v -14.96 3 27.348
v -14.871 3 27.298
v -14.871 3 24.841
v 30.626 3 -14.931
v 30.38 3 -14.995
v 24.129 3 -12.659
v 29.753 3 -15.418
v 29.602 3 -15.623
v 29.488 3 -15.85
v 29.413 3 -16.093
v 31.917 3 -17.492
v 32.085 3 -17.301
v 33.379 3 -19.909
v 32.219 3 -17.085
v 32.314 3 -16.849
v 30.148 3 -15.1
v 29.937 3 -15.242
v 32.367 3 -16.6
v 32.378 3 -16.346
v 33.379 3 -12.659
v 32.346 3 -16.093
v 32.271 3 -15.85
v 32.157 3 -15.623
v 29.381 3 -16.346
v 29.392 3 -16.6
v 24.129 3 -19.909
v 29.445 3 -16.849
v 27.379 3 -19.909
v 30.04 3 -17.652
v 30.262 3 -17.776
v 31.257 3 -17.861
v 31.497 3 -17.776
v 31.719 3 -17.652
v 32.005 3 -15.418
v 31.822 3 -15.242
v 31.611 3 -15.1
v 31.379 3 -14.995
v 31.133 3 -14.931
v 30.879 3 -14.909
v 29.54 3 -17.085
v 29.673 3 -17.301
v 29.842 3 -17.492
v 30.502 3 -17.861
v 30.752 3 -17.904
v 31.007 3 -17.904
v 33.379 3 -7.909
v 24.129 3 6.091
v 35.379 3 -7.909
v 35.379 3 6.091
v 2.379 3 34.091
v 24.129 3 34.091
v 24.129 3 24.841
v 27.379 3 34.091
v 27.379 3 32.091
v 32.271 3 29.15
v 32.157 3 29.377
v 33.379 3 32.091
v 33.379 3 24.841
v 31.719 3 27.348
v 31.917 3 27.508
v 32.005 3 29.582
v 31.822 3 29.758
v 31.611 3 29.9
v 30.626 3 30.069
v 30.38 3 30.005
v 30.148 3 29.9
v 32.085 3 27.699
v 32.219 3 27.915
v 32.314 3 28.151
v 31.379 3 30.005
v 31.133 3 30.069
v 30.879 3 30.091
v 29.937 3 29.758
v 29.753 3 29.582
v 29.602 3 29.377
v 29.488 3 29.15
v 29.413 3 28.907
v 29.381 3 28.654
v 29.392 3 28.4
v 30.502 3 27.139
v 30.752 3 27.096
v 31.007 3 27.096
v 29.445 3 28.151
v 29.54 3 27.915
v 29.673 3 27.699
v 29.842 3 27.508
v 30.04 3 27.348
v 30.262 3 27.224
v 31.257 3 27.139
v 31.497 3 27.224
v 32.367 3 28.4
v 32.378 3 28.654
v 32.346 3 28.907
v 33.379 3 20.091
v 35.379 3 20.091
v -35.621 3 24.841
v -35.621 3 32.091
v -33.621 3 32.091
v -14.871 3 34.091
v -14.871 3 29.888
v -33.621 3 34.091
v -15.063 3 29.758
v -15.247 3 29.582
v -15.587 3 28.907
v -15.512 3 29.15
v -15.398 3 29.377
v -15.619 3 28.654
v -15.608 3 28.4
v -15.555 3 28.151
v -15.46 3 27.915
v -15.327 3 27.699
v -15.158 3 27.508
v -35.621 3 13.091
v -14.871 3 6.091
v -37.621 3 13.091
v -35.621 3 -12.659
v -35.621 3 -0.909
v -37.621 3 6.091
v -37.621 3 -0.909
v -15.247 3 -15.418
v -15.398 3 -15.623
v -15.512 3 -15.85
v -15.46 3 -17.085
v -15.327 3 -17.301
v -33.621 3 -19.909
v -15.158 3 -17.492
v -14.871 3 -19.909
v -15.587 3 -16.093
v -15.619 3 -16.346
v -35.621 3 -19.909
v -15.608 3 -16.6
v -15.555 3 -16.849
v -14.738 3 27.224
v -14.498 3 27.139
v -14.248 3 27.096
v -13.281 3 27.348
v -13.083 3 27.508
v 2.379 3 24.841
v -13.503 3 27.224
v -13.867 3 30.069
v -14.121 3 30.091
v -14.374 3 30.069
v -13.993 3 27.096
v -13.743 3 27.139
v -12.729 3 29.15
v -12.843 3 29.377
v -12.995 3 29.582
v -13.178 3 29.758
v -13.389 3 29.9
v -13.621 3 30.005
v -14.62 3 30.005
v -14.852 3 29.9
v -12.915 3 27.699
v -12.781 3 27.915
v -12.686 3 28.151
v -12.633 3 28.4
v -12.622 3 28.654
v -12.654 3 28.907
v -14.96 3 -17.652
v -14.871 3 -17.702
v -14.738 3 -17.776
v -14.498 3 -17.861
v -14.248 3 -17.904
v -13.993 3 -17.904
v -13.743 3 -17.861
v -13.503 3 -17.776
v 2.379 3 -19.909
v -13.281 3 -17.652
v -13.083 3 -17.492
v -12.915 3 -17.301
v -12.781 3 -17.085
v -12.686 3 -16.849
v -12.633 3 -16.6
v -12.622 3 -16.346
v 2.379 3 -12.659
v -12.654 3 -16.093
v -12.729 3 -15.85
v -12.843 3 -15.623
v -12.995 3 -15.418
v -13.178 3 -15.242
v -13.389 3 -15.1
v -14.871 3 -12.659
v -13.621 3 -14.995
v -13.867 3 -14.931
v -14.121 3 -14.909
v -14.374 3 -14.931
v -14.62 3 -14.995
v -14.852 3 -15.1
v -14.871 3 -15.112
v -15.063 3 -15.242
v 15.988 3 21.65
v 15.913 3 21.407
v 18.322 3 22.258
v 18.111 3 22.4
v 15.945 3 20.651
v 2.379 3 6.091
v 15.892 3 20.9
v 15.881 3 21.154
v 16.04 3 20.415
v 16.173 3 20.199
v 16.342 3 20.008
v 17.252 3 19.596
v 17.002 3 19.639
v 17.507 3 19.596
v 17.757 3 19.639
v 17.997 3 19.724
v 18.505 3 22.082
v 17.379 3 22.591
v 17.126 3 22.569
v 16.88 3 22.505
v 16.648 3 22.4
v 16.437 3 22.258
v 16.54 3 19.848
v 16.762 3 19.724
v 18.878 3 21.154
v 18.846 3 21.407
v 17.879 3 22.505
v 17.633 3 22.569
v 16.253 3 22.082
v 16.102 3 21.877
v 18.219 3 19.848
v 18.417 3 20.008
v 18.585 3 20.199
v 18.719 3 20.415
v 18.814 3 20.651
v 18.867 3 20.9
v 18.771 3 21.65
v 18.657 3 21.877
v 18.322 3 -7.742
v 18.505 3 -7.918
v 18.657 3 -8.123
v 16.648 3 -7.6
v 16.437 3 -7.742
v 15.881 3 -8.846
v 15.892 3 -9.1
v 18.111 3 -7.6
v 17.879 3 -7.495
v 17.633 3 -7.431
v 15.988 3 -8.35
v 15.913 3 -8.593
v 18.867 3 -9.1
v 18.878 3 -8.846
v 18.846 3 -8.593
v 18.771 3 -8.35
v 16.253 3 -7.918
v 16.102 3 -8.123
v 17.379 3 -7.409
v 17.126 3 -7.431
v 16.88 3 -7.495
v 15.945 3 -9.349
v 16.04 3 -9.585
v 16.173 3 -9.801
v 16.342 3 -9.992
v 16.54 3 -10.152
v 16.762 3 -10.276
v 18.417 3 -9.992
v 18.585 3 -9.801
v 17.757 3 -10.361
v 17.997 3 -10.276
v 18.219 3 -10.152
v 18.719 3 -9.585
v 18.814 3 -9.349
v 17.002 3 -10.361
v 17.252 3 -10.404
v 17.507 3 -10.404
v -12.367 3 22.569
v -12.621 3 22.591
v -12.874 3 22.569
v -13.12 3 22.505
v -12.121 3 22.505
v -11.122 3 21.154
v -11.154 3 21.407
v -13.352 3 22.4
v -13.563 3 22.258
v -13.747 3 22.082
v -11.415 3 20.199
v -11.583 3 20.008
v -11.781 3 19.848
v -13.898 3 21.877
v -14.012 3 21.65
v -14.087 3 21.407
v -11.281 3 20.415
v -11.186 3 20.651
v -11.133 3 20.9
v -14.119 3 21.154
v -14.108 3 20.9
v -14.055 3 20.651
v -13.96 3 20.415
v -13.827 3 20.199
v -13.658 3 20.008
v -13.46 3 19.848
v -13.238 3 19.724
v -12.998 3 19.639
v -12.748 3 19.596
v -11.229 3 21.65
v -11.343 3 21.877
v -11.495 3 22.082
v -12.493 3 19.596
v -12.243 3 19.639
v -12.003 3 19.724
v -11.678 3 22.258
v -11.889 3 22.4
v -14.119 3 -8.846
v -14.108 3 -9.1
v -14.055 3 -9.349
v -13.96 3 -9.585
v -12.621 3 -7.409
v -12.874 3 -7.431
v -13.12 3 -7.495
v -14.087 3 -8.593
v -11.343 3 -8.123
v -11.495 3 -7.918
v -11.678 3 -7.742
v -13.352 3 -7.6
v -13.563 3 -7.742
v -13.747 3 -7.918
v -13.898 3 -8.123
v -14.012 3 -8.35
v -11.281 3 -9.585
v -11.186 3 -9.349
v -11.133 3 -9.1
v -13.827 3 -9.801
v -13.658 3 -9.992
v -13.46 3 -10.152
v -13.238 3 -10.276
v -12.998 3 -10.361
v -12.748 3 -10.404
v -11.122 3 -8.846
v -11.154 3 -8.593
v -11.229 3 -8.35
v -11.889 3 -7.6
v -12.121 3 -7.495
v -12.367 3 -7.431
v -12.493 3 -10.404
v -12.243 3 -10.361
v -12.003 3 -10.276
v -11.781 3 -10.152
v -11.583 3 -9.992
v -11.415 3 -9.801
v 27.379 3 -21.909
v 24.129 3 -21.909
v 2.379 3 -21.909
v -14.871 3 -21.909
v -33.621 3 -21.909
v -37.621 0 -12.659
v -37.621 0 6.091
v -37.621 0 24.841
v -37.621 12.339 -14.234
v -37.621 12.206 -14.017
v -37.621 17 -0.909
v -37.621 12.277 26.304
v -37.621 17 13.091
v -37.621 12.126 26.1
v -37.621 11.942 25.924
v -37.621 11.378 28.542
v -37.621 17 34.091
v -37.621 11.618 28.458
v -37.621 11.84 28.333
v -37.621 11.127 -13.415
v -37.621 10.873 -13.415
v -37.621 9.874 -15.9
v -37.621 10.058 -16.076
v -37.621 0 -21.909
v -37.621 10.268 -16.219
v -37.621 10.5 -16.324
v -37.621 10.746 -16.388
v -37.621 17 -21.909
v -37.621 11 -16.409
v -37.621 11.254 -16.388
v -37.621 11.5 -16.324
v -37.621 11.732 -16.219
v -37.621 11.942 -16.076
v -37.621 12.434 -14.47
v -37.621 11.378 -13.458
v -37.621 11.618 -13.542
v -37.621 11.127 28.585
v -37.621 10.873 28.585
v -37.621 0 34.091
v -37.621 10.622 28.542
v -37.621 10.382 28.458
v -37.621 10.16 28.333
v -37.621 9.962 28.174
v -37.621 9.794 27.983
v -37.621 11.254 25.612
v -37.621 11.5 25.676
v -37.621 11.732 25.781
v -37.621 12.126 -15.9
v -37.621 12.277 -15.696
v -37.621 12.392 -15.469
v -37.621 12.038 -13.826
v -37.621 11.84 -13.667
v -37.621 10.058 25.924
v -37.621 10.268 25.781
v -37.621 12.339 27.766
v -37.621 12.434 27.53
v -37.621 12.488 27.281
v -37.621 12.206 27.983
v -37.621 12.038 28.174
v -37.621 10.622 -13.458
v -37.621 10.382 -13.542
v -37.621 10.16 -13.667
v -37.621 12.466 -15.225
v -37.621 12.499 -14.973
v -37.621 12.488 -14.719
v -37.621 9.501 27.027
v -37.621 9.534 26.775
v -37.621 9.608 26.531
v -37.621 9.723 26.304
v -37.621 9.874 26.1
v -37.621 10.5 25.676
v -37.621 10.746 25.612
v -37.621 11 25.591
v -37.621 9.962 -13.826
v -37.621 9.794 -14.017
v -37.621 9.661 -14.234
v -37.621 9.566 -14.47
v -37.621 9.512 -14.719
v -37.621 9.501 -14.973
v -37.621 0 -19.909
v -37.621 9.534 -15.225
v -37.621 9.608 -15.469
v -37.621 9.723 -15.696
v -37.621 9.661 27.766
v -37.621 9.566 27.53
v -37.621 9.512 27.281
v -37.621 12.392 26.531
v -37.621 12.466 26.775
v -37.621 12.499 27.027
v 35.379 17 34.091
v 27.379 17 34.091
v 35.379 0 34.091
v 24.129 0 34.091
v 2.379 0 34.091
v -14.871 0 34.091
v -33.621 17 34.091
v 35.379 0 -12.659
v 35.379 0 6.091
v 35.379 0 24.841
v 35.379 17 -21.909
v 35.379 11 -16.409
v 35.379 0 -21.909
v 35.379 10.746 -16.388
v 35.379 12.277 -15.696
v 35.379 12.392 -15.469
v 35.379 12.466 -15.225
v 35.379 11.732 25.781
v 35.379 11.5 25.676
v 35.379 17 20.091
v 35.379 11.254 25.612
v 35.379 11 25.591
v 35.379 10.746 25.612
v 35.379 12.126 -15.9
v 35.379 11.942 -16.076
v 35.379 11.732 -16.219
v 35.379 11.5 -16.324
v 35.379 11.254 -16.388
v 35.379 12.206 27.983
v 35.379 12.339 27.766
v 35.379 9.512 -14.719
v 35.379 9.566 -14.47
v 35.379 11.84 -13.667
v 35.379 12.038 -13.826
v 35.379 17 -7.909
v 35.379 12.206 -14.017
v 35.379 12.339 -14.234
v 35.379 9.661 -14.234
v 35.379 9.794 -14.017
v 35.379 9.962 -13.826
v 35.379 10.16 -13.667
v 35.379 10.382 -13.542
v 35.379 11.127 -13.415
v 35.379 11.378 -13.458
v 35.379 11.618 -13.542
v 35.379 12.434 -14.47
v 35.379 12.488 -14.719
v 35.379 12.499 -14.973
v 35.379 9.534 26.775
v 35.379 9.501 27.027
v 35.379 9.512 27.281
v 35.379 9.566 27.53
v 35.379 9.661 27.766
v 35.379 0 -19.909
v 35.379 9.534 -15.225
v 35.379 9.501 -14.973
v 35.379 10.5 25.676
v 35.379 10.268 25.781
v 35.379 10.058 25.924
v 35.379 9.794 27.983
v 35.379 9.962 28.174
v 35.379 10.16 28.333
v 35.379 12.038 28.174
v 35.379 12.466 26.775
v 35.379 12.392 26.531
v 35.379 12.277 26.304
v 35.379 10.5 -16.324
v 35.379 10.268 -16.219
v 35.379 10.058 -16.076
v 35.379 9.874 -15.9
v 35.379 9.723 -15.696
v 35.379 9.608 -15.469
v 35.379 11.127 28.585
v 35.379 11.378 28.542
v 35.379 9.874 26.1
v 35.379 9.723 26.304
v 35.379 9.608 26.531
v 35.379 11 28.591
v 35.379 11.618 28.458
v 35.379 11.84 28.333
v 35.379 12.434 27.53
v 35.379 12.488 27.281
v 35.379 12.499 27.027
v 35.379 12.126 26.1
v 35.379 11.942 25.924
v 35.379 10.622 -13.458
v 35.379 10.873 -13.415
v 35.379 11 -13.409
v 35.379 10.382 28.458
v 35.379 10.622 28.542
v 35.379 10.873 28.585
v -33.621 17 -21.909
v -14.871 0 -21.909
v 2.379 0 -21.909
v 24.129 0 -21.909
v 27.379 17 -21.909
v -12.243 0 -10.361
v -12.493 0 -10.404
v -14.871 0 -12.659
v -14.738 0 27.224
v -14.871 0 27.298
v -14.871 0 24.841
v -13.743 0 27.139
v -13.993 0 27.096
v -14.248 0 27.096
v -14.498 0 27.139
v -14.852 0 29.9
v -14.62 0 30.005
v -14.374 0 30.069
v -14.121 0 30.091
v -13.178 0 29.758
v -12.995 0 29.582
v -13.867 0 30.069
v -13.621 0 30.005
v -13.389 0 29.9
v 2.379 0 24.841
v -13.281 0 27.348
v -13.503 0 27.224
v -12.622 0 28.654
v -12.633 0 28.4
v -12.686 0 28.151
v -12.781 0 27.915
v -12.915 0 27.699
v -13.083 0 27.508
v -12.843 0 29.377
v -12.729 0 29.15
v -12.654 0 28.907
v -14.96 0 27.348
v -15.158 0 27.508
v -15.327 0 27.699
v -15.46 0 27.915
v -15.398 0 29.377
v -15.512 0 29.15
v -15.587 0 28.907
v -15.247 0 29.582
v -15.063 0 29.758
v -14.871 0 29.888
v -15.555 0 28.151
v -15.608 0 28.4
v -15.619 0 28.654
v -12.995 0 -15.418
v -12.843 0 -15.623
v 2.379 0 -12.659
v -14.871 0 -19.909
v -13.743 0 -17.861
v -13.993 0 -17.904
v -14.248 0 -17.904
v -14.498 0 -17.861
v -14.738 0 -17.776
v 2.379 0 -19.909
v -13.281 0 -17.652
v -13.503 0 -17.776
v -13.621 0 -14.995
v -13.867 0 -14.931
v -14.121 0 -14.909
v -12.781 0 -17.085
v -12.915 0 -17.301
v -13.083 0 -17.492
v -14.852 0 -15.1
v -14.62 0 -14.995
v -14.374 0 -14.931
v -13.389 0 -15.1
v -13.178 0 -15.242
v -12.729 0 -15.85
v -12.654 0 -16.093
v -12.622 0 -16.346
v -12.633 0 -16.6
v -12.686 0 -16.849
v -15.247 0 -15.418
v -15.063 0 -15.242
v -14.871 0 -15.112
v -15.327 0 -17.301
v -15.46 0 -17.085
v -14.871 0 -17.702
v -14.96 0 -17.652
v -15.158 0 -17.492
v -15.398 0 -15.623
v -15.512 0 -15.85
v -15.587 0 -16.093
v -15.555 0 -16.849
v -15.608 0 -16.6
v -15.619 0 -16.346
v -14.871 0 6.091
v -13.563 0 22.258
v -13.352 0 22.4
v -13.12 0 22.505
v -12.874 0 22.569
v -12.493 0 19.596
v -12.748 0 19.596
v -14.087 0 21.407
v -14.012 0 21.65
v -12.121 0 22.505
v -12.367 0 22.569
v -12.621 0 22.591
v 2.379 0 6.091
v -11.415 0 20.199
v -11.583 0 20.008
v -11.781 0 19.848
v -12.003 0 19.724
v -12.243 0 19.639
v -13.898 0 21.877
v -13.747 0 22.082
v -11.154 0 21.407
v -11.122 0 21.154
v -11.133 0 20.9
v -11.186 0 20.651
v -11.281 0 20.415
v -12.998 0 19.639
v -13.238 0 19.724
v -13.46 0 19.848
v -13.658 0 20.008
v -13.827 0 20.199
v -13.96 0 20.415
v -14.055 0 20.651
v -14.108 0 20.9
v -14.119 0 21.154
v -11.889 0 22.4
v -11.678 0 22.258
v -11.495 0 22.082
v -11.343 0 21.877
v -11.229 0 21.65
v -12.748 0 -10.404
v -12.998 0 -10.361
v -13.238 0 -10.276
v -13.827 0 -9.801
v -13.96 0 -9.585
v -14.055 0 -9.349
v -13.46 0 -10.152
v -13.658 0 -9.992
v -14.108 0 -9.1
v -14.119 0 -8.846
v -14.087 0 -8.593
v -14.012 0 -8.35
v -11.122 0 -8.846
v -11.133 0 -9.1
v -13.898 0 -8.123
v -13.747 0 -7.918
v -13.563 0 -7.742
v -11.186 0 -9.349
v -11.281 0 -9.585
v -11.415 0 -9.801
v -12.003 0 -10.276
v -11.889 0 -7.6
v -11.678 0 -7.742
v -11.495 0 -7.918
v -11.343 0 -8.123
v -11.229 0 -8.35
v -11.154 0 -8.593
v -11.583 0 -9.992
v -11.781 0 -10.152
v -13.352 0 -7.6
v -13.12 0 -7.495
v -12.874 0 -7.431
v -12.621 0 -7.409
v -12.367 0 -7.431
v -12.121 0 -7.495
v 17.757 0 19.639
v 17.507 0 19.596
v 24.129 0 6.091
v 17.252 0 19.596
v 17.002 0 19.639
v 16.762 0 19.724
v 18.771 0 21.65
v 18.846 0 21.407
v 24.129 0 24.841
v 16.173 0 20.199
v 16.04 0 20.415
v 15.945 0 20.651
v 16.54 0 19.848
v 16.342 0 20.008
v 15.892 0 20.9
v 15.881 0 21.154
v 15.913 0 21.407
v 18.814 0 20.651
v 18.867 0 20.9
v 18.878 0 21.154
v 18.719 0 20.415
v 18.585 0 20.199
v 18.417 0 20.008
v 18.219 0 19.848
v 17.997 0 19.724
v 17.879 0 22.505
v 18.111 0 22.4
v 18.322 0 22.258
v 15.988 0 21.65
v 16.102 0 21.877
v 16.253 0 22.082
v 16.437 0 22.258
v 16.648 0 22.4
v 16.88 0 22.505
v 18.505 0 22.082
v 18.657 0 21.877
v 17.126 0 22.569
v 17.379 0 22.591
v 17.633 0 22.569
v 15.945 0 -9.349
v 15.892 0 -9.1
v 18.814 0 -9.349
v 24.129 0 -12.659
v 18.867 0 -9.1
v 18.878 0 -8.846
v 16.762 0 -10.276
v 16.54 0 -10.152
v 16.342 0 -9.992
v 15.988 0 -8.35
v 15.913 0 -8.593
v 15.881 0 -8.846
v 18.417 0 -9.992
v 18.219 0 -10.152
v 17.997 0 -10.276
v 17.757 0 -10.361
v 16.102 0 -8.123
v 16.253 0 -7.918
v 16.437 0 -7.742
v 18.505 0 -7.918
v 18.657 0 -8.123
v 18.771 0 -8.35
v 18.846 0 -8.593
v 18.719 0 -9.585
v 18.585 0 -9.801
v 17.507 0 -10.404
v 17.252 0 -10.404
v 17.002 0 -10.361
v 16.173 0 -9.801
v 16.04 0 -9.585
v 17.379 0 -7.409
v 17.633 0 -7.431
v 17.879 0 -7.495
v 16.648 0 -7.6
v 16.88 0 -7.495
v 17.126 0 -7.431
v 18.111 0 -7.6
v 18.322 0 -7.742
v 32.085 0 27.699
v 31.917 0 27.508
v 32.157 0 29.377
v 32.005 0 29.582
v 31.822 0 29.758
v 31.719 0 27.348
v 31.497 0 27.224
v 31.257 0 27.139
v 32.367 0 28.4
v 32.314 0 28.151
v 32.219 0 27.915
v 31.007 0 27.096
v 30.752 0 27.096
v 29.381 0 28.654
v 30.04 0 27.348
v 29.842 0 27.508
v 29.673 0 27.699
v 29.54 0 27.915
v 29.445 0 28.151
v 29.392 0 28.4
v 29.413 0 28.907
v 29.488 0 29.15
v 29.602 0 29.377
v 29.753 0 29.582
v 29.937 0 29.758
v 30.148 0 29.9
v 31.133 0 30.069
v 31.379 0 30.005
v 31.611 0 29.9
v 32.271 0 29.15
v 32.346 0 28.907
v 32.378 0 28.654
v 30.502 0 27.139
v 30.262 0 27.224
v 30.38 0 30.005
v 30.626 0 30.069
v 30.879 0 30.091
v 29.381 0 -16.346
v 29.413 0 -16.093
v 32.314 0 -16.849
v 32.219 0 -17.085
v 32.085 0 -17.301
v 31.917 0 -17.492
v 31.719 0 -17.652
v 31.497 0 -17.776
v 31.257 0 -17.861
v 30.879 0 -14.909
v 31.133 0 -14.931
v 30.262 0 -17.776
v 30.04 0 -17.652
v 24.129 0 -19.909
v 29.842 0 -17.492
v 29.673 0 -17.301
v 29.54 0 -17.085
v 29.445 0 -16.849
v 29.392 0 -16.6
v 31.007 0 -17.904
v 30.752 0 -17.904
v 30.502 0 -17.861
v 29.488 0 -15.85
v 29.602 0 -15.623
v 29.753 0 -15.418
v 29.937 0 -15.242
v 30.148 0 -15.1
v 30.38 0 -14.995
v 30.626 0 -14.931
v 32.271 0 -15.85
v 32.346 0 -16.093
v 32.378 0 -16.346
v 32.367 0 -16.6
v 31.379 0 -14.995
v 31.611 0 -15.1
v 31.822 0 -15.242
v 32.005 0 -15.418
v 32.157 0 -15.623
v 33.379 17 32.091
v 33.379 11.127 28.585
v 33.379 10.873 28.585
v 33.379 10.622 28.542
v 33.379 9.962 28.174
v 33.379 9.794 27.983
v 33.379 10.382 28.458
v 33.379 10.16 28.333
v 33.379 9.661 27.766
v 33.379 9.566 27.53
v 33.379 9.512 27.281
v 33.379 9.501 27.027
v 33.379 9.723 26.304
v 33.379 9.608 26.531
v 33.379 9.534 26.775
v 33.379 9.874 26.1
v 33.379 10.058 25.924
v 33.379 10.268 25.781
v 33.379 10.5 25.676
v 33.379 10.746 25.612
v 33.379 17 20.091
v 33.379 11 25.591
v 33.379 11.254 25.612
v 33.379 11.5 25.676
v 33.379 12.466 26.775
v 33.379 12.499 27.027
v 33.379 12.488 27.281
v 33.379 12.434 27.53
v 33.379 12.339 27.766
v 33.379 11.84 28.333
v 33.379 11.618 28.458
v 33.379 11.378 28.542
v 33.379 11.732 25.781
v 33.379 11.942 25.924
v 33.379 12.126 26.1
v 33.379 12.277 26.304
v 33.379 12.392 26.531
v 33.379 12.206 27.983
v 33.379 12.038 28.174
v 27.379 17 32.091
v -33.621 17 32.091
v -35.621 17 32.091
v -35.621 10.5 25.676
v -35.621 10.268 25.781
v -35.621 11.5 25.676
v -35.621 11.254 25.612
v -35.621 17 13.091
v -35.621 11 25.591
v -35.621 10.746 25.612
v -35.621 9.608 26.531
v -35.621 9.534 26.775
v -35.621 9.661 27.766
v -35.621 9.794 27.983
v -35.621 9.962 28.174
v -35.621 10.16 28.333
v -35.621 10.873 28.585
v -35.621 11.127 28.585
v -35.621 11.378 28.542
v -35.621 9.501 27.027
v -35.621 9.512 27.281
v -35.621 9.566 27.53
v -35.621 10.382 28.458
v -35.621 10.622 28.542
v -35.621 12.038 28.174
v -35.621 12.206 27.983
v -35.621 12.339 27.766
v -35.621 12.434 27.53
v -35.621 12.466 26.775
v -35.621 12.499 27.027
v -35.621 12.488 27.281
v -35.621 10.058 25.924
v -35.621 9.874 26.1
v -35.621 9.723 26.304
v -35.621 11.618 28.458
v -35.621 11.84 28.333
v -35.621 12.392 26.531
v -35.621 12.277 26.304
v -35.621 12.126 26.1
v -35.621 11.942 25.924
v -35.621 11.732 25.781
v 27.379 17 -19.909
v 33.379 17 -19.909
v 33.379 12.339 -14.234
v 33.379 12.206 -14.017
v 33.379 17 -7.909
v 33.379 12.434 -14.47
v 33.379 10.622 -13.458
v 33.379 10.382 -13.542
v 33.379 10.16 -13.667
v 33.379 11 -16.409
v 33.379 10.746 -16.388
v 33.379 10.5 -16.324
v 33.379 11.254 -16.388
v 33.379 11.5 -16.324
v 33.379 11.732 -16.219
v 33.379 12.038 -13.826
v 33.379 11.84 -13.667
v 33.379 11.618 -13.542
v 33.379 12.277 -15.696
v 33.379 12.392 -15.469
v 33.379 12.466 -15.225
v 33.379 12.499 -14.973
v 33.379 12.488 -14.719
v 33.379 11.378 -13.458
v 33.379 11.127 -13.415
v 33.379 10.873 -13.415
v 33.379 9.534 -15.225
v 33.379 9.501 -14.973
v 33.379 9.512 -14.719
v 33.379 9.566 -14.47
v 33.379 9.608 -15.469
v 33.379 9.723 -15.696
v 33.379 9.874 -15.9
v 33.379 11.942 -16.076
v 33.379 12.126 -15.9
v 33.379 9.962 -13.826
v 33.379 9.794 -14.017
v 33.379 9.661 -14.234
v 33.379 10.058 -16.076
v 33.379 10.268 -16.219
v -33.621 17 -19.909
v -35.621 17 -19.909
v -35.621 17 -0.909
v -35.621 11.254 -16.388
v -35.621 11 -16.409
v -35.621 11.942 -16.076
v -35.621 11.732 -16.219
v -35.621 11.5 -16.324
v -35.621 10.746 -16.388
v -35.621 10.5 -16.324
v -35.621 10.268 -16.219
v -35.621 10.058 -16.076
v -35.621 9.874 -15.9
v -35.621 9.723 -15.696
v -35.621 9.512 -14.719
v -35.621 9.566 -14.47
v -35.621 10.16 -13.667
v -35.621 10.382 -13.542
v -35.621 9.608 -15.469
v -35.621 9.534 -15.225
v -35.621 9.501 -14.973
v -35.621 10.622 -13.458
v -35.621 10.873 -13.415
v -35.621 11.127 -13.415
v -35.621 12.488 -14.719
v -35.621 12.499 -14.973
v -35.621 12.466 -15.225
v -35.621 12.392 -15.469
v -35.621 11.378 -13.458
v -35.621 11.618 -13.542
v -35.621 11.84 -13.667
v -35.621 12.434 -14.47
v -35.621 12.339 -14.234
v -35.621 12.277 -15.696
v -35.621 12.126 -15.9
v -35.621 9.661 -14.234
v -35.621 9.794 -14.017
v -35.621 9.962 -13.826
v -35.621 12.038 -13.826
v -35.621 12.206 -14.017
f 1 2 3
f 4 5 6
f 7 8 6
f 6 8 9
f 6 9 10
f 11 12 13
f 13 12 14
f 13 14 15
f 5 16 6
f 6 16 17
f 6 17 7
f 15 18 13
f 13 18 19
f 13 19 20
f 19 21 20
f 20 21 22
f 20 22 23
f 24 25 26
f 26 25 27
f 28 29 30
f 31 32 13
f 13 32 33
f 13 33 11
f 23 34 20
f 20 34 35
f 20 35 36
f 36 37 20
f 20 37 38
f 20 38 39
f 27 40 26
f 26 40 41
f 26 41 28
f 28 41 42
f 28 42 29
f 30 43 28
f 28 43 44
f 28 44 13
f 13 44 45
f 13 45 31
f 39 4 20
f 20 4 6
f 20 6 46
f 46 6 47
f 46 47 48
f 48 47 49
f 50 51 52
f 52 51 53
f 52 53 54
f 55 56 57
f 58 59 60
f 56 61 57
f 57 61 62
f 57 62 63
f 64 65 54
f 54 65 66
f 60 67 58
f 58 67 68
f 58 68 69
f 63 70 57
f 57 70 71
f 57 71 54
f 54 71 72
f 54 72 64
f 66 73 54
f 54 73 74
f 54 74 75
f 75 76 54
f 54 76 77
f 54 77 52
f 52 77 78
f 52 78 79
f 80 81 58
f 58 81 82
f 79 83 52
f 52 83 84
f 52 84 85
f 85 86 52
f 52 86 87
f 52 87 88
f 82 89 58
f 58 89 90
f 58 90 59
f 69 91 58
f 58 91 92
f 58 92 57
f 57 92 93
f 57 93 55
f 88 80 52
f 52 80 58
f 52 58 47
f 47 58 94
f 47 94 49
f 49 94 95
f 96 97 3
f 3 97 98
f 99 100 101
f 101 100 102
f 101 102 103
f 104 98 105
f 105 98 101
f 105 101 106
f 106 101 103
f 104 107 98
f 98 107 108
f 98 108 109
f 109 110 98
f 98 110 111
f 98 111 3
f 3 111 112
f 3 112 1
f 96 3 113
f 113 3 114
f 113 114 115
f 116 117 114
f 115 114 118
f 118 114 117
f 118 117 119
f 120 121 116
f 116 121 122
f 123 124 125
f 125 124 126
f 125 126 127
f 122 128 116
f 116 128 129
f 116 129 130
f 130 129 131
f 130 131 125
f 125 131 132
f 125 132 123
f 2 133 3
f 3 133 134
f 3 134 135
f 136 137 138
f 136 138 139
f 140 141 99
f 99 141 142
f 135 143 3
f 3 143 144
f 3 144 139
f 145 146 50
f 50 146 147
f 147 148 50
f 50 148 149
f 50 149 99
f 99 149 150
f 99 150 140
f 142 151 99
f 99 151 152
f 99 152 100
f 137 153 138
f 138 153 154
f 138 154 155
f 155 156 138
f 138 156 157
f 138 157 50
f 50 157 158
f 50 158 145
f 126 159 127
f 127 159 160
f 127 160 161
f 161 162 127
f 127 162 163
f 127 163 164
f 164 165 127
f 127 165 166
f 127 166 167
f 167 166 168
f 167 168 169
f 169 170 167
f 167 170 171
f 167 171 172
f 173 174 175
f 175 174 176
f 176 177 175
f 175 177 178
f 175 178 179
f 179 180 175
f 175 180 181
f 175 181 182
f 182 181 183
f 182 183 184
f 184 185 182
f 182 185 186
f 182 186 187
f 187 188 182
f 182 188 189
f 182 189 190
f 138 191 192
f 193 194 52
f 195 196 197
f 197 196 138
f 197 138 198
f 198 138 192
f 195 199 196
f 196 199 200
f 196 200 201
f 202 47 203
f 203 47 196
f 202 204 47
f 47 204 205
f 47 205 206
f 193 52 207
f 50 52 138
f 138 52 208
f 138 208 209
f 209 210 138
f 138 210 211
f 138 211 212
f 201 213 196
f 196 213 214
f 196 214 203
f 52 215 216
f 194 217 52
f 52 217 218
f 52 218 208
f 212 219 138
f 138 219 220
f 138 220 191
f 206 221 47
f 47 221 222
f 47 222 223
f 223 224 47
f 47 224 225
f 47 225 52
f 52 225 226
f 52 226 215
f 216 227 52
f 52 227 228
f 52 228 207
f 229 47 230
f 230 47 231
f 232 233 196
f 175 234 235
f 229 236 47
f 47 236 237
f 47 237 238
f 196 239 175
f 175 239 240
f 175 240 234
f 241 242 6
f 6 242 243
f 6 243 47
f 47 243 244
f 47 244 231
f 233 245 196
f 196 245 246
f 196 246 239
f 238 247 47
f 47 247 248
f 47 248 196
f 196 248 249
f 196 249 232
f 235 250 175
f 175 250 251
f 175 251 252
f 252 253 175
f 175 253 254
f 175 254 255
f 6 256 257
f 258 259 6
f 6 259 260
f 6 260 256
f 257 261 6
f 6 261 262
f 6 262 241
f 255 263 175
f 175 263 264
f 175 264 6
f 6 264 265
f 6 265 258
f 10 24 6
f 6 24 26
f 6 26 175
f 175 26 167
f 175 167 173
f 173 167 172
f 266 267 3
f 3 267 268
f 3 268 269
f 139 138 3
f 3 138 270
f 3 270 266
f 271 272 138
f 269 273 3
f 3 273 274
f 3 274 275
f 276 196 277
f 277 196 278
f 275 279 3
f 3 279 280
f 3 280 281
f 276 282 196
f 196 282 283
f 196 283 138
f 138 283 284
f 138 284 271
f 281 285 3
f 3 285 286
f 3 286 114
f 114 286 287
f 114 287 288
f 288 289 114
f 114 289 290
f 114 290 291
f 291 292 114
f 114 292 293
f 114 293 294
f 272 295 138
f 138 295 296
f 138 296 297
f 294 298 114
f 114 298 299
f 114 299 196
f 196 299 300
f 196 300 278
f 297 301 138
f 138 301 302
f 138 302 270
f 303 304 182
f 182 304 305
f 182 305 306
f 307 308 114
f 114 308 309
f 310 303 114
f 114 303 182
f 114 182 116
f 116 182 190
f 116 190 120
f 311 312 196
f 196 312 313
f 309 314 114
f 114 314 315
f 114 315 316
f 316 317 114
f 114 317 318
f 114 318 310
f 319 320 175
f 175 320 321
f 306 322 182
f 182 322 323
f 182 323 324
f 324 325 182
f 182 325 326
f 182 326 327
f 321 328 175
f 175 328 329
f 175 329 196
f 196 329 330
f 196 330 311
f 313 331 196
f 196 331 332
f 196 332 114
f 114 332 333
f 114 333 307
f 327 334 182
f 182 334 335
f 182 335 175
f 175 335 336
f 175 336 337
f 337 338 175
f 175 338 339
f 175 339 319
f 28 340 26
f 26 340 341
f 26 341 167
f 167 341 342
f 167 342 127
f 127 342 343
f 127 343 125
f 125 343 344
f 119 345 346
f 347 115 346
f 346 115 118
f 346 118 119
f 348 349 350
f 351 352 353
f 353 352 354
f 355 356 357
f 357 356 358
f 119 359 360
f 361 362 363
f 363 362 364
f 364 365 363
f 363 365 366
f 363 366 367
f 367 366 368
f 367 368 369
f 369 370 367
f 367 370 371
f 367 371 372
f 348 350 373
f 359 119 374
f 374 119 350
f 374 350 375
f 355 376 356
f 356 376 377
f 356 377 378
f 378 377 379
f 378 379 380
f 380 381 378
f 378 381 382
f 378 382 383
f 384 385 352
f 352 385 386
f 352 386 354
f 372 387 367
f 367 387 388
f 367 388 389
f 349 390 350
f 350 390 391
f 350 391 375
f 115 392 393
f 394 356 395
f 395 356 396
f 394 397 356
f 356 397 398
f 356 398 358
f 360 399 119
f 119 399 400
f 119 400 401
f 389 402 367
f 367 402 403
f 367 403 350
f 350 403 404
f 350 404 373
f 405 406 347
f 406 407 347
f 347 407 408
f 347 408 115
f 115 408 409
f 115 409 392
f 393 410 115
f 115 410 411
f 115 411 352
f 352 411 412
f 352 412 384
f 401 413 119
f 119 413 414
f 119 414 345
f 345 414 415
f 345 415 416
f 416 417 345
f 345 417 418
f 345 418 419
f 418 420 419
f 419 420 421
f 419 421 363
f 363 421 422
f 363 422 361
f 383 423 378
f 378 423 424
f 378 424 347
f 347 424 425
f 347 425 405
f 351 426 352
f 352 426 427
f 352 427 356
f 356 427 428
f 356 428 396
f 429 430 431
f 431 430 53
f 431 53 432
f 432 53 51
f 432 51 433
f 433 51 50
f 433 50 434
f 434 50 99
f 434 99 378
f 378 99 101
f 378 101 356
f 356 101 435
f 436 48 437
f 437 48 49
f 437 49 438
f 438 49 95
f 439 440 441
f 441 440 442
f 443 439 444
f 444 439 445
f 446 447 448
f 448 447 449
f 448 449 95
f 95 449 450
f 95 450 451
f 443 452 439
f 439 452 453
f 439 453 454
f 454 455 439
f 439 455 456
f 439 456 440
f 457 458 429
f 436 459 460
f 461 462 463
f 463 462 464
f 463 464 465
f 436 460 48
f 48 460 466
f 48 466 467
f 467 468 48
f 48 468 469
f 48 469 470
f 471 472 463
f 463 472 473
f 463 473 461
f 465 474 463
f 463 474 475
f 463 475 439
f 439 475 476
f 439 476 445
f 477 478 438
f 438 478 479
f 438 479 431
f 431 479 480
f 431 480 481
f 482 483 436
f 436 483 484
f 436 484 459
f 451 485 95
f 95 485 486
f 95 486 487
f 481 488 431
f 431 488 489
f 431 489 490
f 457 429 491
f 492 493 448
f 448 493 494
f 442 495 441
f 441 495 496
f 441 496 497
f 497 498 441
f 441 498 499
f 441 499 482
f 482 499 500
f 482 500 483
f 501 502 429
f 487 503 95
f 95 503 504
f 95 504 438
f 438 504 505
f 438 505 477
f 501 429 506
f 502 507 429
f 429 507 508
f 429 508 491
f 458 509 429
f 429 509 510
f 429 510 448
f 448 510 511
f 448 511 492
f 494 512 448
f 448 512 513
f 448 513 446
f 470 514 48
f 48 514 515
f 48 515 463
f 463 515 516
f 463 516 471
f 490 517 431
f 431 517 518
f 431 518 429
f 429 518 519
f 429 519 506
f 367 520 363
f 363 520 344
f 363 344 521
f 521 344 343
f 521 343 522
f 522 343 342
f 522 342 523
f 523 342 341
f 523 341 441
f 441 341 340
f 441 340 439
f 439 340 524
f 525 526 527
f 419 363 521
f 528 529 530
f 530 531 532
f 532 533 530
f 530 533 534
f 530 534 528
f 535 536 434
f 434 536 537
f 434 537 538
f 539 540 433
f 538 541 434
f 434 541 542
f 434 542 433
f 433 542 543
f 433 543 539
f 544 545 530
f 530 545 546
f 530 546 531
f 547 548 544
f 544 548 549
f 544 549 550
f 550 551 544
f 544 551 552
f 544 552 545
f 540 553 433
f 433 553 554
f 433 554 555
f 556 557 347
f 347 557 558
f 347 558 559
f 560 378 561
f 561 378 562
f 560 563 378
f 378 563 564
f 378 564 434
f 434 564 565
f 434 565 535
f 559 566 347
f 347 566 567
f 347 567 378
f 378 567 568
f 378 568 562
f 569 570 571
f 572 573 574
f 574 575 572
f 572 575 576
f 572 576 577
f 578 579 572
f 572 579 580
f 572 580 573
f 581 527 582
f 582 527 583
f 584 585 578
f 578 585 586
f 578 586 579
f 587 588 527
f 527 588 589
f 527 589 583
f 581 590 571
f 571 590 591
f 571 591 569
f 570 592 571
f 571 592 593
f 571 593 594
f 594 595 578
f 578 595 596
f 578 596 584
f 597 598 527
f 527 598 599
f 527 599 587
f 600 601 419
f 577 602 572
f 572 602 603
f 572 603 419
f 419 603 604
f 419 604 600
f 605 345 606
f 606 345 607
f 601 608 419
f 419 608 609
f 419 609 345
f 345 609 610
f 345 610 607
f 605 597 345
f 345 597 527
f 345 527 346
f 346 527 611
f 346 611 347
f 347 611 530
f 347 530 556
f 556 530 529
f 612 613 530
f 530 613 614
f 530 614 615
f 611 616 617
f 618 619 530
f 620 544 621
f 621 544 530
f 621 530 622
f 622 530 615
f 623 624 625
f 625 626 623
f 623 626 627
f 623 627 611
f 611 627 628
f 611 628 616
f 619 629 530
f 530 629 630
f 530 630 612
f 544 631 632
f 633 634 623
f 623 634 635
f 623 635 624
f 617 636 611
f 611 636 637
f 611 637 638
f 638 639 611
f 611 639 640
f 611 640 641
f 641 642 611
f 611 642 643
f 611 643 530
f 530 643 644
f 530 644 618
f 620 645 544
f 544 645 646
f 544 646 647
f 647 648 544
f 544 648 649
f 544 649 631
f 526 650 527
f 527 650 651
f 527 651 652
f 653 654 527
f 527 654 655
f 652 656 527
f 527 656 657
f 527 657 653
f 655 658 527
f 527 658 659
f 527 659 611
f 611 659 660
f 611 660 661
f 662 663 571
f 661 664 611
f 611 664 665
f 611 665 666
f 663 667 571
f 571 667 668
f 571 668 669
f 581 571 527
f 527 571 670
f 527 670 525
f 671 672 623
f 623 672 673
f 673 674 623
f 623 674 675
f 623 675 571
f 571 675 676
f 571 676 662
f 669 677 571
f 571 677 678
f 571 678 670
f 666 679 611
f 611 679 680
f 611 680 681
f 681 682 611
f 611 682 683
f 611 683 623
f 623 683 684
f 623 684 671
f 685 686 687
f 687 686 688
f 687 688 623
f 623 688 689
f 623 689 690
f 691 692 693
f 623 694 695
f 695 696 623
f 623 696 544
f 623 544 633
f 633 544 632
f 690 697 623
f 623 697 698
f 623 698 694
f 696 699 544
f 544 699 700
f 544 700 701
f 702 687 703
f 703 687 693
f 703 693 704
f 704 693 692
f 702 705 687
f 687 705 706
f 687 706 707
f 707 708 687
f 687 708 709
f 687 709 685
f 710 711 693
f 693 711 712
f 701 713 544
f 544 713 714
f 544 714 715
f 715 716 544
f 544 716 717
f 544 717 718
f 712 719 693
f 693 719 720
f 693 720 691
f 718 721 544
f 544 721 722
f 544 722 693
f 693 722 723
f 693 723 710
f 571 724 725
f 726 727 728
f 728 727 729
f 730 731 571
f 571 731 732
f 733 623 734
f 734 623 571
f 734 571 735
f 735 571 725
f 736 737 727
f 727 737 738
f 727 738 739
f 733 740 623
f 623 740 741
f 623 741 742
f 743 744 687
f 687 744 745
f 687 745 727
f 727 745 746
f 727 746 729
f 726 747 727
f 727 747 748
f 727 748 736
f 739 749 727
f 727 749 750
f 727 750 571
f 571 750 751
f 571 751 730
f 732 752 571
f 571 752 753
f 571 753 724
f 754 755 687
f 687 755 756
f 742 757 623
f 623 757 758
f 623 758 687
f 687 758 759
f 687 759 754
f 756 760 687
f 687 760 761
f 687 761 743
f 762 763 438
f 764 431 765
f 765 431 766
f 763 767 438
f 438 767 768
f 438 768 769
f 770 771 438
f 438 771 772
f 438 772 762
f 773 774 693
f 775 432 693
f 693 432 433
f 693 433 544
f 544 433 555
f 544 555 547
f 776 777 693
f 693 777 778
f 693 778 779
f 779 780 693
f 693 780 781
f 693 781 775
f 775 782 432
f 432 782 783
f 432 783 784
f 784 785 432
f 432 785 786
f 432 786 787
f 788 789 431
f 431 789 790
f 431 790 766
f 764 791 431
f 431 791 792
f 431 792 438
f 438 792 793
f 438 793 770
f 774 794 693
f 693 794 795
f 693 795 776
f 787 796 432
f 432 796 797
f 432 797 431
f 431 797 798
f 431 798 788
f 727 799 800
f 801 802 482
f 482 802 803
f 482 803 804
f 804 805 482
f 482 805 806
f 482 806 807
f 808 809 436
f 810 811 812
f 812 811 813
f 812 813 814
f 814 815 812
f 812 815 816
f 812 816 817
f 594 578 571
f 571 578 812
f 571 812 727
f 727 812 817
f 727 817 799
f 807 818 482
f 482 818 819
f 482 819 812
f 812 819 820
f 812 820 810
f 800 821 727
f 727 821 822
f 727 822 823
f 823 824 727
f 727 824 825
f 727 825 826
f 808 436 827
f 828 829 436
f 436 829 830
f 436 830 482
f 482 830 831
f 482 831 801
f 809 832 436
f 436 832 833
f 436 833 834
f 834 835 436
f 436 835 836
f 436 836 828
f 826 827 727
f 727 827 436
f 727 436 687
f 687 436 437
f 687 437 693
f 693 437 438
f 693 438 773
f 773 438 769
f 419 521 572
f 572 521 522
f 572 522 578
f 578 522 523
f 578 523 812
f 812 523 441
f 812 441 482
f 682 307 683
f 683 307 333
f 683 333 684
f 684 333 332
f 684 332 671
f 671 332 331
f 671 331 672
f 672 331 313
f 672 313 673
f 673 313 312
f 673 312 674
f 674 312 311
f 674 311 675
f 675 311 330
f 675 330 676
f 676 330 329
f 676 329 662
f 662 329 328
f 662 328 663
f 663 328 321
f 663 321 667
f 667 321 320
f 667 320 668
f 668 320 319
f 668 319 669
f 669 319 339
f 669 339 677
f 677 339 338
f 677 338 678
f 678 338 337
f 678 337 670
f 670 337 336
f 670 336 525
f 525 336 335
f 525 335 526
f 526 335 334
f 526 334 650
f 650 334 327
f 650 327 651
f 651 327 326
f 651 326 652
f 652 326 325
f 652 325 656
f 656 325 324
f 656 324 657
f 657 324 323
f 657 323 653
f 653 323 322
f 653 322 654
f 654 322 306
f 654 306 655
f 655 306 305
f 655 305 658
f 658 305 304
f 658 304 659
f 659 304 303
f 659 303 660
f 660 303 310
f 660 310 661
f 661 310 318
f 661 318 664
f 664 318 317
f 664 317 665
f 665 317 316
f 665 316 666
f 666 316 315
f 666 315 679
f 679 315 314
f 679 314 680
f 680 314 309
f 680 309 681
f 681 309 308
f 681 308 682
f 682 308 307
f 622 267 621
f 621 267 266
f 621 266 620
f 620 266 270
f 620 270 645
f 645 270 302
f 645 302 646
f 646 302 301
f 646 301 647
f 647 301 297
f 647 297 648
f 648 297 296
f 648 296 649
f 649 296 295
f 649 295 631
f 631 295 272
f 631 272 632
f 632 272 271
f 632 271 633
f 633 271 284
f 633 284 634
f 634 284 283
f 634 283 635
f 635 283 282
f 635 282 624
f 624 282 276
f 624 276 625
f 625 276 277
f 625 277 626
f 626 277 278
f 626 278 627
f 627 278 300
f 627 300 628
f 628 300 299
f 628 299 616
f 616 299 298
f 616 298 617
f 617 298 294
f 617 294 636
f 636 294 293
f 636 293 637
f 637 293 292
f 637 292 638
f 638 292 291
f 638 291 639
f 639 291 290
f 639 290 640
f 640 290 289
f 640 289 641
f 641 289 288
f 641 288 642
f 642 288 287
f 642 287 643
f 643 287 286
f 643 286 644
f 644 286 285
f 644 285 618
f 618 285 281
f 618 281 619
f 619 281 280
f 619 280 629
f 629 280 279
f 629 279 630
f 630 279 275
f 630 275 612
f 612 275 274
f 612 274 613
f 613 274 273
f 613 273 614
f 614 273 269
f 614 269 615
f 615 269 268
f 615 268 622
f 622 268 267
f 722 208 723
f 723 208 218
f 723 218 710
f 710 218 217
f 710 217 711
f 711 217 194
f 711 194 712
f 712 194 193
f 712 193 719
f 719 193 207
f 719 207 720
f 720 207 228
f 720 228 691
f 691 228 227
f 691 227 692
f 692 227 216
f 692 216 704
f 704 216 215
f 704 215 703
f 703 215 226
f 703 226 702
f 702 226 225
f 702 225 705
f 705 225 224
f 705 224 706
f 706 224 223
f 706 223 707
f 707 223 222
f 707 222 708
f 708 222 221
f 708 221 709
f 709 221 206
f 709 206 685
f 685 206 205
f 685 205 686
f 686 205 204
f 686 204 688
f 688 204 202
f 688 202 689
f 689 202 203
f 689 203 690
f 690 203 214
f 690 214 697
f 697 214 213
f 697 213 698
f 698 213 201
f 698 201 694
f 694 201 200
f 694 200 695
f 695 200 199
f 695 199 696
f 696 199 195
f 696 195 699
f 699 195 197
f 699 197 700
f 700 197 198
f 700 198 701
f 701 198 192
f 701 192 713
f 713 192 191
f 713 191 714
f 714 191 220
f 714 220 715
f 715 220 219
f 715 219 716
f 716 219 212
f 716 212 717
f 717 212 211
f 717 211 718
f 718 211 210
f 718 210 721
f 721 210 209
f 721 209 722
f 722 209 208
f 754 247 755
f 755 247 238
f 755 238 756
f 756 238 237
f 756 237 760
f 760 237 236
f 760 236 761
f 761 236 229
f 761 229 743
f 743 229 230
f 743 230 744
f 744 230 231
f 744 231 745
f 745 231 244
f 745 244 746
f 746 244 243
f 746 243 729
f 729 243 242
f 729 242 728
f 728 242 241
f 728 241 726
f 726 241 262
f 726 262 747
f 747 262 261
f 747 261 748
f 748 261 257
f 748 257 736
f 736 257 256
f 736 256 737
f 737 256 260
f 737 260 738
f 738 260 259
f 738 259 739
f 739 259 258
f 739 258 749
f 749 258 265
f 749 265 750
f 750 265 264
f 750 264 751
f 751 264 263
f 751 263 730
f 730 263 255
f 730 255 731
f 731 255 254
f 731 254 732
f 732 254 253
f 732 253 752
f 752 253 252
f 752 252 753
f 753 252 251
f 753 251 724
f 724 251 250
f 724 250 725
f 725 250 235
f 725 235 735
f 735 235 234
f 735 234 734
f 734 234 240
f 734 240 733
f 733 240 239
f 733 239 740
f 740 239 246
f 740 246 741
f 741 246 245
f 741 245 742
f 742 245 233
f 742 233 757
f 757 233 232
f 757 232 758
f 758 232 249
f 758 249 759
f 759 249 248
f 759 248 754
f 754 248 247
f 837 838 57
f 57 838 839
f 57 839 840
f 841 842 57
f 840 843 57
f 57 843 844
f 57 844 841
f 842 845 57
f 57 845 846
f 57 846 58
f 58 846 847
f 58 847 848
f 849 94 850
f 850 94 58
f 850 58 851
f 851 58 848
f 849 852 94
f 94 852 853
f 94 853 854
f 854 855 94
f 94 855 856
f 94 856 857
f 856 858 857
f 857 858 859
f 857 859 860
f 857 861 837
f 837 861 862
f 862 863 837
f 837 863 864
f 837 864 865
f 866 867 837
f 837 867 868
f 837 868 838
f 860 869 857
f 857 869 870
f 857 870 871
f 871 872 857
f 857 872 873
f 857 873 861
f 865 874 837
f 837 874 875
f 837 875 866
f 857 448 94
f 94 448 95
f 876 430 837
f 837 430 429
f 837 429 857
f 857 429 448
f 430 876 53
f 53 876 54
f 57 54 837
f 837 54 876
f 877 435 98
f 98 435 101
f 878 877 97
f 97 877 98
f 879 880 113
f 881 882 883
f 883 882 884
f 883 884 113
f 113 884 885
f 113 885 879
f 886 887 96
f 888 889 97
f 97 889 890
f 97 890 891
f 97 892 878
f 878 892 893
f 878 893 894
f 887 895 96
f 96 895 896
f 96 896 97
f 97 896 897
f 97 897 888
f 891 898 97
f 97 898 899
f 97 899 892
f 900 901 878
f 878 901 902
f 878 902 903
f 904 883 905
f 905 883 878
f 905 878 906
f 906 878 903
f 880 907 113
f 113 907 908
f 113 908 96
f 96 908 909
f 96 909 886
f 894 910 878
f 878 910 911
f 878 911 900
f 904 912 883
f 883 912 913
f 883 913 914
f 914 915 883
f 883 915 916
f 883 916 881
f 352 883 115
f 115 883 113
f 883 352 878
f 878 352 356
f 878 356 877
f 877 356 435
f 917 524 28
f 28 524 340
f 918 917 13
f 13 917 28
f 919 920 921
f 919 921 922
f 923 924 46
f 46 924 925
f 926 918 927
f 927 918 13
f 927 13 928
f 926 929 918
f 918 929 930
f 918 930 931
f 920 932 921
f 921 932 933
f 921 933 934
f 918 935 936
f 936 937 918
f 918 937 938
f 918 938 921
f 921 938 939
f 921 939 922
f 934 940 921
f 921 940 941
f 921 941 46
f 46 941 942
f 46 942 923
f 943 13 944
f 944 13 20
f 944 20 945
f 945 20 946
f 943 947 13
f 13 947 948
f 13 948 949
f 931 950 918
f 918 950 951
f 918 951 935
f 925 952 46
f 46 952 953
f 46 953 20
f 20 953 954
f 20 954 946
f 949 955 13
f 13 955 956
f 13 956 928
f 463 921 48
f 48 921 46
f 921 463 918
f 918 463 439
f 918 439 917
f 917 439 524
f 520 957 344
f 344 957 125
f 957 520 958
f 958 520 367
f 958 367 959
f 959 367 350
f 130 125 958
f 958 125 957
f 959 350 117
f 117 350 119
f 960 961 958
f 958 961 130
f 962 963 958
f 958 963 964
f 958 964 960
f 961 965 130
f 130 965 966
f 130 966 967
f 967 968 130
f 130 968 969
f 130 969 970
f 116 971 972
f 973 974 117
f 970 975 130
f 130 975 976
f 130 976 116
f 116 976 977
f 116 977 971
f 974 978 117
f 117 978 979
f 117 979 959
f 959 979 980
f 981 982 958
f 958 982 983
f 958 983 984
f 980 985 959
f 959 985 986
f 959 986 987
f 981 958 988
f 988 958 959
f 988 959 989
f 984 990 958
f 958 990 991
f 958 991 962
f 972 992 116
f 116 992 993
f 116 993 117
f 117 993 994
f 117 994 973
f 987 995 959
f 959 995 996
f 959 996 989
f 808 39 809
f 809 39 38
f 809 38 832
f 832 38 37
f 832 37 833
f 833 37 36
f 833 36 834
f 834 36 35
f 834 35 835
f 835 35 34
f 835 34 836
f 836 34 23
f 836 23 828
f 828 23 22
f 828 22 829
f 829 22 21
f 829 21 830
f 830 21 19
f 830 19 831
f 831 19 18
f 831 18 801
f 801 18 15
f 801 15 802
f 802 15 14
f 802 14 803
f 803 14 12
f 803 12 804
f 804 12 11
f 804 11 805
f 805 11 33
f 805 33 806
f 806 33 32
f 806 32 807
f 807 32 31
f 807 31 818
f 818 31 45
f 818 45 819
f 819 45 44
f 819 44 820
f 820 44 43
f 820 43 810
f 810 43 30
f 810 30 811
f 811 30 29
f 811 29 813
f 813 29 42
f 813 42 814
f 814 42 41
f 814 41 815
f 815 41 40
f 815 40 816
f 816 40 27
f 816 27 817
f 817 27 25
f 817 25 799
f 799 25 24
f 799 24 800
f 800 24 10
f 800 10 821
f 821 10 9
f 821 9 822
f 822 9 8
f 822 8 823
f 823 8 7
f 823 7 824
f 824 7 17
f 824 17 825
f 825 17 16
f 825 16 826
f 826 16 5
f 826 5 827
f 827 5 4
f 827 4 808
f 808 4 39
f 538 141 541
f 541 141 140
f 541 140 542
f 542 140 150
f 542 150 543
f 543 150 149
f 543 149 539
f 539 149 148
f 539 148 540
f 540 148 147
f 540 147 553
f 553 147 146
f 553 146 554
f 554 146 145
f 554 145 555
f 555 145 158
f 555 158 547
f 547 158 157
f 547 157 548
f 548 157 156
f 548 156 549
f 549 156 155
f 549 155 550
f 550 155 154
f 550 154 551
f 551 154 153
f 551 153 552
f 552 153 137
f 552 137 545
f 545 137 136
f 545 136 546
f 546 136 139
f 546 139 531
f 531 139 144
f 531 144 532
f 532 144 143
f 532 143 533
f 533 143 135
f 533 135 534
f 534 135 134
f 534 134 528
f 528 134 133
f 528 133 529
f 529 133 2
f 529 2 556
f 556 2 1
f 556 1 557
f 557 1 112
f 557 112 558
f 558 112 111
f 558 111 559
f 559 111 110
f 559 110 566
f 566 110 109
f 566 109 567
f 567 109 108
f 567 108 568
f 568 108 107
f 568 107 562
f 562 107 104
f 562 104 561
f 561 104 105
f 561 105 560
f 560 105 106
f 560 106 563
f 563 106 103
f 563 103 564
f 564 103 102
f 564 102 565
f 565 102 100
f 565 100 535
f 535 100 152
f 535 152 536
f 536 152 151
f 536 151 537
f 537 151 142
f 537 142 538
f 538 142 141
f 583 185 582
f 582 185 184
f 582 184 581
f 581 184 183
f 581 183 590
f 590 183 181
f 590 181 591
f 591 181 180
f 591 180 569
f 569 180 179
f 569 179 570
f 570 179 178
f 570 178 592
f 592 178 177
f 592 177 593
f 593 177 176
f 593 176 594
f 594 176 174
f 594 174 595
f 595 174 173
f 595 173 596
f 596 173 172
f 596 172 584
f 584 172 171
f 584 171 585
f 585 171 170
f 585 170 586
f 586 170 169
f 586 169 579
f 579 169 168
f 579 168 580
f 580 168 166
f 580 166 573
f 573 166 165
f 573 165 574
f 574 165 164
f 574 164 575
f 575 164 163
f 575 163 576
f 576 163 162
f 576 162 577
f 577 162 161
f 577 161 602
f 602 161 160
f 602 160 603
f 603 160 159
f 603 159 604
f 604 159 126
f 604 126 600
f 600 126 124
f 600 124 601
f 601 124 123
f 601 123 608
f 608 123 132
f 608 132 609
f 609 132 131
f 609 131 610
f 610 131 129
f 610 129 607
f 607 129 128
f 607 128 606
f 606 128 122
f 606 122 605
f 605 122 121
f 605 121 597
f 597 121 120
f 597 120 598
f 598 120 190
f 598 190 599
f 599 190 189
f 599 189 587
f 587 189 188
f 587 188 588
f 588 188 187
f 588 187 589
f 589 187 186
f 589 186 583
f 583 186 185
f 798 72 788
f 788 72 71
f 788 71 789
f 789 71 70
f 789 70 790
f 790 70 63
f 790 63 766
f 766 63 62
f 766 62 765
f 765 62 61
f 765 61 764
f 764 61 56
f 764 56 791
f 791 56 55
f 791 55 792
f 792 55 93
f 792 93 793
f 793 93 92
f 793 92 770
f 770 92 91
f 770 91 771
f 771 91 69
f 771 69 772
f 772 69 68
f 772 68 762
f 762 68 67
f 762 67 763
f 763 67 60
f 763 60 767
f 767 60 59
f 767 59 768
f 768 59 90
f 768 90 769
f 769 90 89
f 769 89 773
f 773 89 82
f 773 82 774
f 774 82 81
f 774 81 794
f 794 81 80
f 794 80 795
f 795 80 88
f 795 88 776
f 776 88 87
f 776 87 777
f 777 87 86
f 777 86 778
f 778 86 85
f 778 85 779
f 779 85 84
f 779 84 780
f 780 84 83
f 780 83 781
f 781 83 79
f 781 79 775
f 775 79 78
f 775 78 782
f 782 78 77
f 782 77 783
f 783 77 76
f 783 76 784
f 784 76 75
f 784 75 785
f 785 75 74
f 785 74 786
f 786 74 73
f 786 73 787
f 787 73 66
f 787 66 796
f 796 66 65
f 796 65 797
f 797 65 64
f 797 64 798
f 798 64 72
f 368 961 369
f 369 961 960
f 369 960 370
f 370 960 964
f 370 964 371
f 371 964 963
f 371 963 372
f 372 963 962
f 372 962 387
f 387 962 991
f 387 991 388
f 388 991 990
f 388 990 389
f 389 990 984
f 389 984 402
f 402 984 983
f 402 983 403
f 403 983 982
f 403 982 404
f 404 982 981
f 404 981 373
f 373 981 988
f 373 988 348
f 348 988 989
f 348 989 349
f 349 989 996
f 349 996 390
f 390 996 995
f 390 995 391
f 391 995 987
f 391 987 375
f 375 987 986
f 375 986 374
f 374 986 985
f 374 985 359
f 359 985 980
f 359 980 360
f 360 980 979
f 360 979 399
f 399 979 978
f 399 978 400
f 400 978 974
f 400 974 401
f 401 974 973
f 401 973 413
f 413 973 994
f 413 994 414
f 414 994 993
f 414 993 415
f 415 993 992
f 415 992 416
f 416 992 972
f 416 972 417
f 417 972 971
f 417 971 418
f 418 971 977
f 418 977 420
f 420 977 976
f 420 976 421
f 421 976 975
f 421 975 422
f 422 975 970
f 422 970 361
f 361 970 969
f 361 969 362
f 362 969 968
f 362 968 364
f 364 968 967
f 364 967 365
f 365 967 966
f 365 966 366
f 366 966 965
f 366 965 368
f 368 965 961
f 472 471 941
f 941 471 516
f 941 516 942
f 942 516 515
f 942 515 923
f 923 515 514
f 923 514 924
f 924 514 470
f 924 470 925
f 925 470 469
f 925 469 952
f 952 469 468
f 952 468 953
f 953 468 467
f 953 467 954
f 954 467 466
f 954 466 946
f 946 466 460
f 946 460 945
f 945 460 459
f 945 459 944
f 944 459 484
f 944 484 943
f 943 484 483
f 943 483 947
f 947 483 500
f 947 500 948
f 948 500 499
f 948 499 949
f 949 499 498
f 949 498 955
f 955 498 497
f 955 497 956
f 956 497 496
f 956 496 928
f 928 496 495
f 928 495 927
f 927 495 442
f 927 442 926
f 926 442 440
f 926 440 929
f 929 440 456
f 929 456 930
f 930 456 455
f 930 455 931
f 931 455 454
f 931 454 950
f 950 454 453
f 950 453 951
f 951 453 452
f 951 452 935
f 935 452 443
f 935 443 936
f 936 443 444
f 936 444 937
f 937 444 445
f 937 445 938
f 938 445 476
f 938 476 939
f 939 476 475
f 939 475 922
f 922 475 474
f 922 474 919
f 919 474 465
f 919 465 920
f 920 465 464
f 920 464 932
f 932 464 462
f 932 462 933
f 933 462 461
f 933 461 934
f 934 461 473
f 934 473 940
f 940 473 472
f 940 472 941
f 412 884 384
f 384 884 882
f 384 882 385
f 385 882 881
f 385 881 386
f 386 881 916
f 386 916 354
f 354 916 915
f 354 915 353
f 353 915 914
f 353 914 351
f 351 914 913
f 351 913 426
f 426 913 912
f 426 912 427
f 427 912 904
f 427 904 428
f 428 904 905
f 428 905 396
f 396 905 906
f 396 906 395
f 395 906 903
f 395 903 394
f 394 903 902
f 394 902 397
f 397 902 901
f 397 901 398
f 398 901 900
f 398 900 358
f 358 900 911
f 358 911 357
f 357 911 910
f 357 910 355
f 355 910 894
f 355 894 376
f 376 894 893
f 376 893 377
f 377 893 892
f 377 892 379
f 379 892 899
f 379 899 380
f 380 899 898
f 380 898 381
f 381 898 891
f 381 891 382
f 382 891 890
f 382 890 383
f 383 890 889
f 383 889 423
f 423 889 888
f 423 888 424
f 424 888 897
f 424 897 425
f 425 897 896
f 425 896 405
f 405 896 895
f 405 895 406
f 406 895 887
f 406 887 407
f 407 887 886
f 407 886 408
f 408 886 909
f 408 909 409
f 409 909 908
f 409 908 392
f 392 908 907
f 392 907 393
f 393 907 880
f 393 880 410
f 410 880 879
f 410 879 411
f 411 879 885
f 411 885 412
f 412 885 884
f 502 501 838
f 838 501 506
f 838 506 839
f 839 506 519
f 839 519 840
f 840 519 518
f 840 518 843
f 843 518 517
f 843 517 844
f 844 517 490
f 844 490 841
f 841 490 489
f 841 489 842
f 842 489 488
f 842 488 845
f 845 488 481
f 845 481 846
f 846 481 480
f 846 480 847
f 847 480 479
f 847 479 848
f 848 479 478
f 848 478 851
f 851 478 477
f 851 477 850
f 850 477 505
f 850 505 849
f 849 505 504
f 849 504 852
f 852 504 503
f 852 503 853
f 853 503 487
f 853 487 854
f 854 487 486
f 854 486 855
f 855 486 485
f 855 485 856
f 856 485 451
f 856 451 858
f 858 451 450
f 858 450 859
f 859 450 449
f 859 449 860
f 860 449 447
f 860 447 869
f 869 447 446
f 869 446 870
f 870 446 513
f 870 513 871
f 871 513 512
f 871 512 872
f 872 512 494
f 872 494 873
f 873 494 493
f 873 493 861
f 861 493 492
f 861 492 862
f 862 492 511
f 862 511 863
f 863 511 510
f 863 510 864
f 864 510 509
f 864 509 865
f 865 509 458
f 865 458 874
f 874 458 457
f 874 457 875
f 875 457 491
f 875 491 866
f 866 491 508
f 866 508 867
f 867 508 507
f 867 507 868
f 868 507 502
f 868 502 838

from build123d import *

# Parameters (mm, degrees)
SKETCH1_W               = 73
SKETCH1_H               = 56
BOSS_EXTRUDE1_DEPTH     = 3
SKETCH2_R               = 1.5
CUT_EXTRUDE1_DEPTH      = 4
SKETCH4_W               = 2
SKETCH4_H               = 12
SKETCH4_H_2             = 19
SKETCH4_W_2             = 8
SKETCH4_H_3             = 2
BOSS_EXTRUDE2_DEPTH     = 14
SKETCH5_R               = 1.5
CUT_EXTRUDE2_DEPTH      = 4
SKETCH7_R               = 1.5
CUT_EXTRUDE4_DEPTH      = 1
CUT_EXTRUDE4_DEPTH_BACK = 74


with BuildPart() as part:
    # Sketch1 → Boss-Extrude1 (new body)
    with BuildSketch(Plane(origin=(0, 0, 0), x_dir=(1, 0, 0), z_dir=(0, 1, 0))):
        with Locations((-1.12052506, -6.090692124)):
            Rectangle(SKETCH1_W, SKETCH1_H)
    extrude(amount=BOSS_EXTRUDE1_DEPTH)

    # Sketch2 → Cut-Extrude1 (cut, through all)
    with BuildSketch(Plane(origin=(0, 3, 0), x_dir=(1, 0, 0), z_dir=(0, 1, 0))):
        with Locations((-12.62052506, 8.909307876)):
            Circle(SKETCH2_R)
        with Locations((-12.62052506, -21.090692124)):
            Circle(SKETCH2_R)
        with Locations((17.37947494, -21.090692124)):
            Circle(SKETCH2_R)
        with Locations((17.37947494, 8.909307876)):
            Circle(SKETCH2_R)
    extrude(amount=-CUT_EXTRUDE1_DEPTH, mode=Mode.SUBTRACT)

    # Sketch4 → Boss-Extrude2 (add)
    with BuildSketch(Plane(origin=(0, 3, 0), x_dir=(1, 0, 0), z_dir=(0, 1, 0))):
        Polygon((-33.62052506, 21.909307876), (-37.62052506, 21.909307876), (-37.62052506, 19.909307876), (-35.62052506, 19.909307876), (-33.62052506, 19.909307876), align=None)
        Polygon((35.37947494, 21.909307876), (27.37947494, 21.909307876), (27.37947494, 19.909307876), (33.37947494, 19.909307876), (35.37947494, 19.909307876), align=None)
        with Locations((34.37947494, 13.909307876)):
            Rectangle(SKETCH4_W, SKETCH4_H)
        with Locations((34.37947494, -26.090692124)):
            Rectangle(SKETCH4_W, SKETCH4_H)
        Polygon((-35.62052506, -32.090692124), (-37.62052506, -32.090692124), (-37.62052506, -34.090692124), (-33.62052506, -34.090692124), (-33.62052506, -32.090692124), align=None)
        with Locations((-36.62052506, -22.590692124)):
            Rectangle(SKETCH4_W, SKETCH4_H_2)
        with Locations((-36.62052506, 10.409307876)):
            Rectangle(SKETCH4_W, SKETCH4_H_2)
        with Locations((31.37947494, -33.090692124)):
            Rectangle(SKETCH4_W_2, SKETCH4_H_3)
    extrude(amount=BOSS_EXTRUDE2_DEPTH)

    # Sketch5 → Cut-Extrude2 (cut, through all)
    with BuildSketch(Plane(origin=(0, 3, 0), x_dir=(1, 0, 0), z_dir=(0, 1, 0))):
        with Locations((30.87947494, 16.409307876)):
            Circle(SKETCH5_R)
        with Locations((30.87947494, -28.590692124)):
            Circle(SKETCH5_R)
        with Locations((-14.12052506, 16.409307876)):
            Circle(SKETCH5_R)
        with Locations((-14.12052506, -28.590692124)):
            Circle(SKETCH5_R)
    extrude(amount=-CUT_EXTRUDE2_DEPTH, mode=Mode.SUBTRACT)

    # Sketch7 → Cut-Extrude4 (cut, two sides)
    with BuildSketch(Plane(origin=(35.37947494, 0, 0), x_dir=(0, 0, -1), z_dir=(1, 0, 0))) as cut_extrude4_sk:
        with Locations((-27.090692124, 11)):
            Circle(SKETCH7_R)
        with Locations((14.909307876, 11)):
            Circle(SKETCH7_R)
    extrude(amount=CUT_EXTRUDE4_DEPTH, mode=Mode.SUBTRACT)
    extrude(cut_extrude4_sk.sketch, amount=-CUT_EXTRUDE4_DEPTH_BACK, mode=Mode.SUBTRACT)


solid = part.part
